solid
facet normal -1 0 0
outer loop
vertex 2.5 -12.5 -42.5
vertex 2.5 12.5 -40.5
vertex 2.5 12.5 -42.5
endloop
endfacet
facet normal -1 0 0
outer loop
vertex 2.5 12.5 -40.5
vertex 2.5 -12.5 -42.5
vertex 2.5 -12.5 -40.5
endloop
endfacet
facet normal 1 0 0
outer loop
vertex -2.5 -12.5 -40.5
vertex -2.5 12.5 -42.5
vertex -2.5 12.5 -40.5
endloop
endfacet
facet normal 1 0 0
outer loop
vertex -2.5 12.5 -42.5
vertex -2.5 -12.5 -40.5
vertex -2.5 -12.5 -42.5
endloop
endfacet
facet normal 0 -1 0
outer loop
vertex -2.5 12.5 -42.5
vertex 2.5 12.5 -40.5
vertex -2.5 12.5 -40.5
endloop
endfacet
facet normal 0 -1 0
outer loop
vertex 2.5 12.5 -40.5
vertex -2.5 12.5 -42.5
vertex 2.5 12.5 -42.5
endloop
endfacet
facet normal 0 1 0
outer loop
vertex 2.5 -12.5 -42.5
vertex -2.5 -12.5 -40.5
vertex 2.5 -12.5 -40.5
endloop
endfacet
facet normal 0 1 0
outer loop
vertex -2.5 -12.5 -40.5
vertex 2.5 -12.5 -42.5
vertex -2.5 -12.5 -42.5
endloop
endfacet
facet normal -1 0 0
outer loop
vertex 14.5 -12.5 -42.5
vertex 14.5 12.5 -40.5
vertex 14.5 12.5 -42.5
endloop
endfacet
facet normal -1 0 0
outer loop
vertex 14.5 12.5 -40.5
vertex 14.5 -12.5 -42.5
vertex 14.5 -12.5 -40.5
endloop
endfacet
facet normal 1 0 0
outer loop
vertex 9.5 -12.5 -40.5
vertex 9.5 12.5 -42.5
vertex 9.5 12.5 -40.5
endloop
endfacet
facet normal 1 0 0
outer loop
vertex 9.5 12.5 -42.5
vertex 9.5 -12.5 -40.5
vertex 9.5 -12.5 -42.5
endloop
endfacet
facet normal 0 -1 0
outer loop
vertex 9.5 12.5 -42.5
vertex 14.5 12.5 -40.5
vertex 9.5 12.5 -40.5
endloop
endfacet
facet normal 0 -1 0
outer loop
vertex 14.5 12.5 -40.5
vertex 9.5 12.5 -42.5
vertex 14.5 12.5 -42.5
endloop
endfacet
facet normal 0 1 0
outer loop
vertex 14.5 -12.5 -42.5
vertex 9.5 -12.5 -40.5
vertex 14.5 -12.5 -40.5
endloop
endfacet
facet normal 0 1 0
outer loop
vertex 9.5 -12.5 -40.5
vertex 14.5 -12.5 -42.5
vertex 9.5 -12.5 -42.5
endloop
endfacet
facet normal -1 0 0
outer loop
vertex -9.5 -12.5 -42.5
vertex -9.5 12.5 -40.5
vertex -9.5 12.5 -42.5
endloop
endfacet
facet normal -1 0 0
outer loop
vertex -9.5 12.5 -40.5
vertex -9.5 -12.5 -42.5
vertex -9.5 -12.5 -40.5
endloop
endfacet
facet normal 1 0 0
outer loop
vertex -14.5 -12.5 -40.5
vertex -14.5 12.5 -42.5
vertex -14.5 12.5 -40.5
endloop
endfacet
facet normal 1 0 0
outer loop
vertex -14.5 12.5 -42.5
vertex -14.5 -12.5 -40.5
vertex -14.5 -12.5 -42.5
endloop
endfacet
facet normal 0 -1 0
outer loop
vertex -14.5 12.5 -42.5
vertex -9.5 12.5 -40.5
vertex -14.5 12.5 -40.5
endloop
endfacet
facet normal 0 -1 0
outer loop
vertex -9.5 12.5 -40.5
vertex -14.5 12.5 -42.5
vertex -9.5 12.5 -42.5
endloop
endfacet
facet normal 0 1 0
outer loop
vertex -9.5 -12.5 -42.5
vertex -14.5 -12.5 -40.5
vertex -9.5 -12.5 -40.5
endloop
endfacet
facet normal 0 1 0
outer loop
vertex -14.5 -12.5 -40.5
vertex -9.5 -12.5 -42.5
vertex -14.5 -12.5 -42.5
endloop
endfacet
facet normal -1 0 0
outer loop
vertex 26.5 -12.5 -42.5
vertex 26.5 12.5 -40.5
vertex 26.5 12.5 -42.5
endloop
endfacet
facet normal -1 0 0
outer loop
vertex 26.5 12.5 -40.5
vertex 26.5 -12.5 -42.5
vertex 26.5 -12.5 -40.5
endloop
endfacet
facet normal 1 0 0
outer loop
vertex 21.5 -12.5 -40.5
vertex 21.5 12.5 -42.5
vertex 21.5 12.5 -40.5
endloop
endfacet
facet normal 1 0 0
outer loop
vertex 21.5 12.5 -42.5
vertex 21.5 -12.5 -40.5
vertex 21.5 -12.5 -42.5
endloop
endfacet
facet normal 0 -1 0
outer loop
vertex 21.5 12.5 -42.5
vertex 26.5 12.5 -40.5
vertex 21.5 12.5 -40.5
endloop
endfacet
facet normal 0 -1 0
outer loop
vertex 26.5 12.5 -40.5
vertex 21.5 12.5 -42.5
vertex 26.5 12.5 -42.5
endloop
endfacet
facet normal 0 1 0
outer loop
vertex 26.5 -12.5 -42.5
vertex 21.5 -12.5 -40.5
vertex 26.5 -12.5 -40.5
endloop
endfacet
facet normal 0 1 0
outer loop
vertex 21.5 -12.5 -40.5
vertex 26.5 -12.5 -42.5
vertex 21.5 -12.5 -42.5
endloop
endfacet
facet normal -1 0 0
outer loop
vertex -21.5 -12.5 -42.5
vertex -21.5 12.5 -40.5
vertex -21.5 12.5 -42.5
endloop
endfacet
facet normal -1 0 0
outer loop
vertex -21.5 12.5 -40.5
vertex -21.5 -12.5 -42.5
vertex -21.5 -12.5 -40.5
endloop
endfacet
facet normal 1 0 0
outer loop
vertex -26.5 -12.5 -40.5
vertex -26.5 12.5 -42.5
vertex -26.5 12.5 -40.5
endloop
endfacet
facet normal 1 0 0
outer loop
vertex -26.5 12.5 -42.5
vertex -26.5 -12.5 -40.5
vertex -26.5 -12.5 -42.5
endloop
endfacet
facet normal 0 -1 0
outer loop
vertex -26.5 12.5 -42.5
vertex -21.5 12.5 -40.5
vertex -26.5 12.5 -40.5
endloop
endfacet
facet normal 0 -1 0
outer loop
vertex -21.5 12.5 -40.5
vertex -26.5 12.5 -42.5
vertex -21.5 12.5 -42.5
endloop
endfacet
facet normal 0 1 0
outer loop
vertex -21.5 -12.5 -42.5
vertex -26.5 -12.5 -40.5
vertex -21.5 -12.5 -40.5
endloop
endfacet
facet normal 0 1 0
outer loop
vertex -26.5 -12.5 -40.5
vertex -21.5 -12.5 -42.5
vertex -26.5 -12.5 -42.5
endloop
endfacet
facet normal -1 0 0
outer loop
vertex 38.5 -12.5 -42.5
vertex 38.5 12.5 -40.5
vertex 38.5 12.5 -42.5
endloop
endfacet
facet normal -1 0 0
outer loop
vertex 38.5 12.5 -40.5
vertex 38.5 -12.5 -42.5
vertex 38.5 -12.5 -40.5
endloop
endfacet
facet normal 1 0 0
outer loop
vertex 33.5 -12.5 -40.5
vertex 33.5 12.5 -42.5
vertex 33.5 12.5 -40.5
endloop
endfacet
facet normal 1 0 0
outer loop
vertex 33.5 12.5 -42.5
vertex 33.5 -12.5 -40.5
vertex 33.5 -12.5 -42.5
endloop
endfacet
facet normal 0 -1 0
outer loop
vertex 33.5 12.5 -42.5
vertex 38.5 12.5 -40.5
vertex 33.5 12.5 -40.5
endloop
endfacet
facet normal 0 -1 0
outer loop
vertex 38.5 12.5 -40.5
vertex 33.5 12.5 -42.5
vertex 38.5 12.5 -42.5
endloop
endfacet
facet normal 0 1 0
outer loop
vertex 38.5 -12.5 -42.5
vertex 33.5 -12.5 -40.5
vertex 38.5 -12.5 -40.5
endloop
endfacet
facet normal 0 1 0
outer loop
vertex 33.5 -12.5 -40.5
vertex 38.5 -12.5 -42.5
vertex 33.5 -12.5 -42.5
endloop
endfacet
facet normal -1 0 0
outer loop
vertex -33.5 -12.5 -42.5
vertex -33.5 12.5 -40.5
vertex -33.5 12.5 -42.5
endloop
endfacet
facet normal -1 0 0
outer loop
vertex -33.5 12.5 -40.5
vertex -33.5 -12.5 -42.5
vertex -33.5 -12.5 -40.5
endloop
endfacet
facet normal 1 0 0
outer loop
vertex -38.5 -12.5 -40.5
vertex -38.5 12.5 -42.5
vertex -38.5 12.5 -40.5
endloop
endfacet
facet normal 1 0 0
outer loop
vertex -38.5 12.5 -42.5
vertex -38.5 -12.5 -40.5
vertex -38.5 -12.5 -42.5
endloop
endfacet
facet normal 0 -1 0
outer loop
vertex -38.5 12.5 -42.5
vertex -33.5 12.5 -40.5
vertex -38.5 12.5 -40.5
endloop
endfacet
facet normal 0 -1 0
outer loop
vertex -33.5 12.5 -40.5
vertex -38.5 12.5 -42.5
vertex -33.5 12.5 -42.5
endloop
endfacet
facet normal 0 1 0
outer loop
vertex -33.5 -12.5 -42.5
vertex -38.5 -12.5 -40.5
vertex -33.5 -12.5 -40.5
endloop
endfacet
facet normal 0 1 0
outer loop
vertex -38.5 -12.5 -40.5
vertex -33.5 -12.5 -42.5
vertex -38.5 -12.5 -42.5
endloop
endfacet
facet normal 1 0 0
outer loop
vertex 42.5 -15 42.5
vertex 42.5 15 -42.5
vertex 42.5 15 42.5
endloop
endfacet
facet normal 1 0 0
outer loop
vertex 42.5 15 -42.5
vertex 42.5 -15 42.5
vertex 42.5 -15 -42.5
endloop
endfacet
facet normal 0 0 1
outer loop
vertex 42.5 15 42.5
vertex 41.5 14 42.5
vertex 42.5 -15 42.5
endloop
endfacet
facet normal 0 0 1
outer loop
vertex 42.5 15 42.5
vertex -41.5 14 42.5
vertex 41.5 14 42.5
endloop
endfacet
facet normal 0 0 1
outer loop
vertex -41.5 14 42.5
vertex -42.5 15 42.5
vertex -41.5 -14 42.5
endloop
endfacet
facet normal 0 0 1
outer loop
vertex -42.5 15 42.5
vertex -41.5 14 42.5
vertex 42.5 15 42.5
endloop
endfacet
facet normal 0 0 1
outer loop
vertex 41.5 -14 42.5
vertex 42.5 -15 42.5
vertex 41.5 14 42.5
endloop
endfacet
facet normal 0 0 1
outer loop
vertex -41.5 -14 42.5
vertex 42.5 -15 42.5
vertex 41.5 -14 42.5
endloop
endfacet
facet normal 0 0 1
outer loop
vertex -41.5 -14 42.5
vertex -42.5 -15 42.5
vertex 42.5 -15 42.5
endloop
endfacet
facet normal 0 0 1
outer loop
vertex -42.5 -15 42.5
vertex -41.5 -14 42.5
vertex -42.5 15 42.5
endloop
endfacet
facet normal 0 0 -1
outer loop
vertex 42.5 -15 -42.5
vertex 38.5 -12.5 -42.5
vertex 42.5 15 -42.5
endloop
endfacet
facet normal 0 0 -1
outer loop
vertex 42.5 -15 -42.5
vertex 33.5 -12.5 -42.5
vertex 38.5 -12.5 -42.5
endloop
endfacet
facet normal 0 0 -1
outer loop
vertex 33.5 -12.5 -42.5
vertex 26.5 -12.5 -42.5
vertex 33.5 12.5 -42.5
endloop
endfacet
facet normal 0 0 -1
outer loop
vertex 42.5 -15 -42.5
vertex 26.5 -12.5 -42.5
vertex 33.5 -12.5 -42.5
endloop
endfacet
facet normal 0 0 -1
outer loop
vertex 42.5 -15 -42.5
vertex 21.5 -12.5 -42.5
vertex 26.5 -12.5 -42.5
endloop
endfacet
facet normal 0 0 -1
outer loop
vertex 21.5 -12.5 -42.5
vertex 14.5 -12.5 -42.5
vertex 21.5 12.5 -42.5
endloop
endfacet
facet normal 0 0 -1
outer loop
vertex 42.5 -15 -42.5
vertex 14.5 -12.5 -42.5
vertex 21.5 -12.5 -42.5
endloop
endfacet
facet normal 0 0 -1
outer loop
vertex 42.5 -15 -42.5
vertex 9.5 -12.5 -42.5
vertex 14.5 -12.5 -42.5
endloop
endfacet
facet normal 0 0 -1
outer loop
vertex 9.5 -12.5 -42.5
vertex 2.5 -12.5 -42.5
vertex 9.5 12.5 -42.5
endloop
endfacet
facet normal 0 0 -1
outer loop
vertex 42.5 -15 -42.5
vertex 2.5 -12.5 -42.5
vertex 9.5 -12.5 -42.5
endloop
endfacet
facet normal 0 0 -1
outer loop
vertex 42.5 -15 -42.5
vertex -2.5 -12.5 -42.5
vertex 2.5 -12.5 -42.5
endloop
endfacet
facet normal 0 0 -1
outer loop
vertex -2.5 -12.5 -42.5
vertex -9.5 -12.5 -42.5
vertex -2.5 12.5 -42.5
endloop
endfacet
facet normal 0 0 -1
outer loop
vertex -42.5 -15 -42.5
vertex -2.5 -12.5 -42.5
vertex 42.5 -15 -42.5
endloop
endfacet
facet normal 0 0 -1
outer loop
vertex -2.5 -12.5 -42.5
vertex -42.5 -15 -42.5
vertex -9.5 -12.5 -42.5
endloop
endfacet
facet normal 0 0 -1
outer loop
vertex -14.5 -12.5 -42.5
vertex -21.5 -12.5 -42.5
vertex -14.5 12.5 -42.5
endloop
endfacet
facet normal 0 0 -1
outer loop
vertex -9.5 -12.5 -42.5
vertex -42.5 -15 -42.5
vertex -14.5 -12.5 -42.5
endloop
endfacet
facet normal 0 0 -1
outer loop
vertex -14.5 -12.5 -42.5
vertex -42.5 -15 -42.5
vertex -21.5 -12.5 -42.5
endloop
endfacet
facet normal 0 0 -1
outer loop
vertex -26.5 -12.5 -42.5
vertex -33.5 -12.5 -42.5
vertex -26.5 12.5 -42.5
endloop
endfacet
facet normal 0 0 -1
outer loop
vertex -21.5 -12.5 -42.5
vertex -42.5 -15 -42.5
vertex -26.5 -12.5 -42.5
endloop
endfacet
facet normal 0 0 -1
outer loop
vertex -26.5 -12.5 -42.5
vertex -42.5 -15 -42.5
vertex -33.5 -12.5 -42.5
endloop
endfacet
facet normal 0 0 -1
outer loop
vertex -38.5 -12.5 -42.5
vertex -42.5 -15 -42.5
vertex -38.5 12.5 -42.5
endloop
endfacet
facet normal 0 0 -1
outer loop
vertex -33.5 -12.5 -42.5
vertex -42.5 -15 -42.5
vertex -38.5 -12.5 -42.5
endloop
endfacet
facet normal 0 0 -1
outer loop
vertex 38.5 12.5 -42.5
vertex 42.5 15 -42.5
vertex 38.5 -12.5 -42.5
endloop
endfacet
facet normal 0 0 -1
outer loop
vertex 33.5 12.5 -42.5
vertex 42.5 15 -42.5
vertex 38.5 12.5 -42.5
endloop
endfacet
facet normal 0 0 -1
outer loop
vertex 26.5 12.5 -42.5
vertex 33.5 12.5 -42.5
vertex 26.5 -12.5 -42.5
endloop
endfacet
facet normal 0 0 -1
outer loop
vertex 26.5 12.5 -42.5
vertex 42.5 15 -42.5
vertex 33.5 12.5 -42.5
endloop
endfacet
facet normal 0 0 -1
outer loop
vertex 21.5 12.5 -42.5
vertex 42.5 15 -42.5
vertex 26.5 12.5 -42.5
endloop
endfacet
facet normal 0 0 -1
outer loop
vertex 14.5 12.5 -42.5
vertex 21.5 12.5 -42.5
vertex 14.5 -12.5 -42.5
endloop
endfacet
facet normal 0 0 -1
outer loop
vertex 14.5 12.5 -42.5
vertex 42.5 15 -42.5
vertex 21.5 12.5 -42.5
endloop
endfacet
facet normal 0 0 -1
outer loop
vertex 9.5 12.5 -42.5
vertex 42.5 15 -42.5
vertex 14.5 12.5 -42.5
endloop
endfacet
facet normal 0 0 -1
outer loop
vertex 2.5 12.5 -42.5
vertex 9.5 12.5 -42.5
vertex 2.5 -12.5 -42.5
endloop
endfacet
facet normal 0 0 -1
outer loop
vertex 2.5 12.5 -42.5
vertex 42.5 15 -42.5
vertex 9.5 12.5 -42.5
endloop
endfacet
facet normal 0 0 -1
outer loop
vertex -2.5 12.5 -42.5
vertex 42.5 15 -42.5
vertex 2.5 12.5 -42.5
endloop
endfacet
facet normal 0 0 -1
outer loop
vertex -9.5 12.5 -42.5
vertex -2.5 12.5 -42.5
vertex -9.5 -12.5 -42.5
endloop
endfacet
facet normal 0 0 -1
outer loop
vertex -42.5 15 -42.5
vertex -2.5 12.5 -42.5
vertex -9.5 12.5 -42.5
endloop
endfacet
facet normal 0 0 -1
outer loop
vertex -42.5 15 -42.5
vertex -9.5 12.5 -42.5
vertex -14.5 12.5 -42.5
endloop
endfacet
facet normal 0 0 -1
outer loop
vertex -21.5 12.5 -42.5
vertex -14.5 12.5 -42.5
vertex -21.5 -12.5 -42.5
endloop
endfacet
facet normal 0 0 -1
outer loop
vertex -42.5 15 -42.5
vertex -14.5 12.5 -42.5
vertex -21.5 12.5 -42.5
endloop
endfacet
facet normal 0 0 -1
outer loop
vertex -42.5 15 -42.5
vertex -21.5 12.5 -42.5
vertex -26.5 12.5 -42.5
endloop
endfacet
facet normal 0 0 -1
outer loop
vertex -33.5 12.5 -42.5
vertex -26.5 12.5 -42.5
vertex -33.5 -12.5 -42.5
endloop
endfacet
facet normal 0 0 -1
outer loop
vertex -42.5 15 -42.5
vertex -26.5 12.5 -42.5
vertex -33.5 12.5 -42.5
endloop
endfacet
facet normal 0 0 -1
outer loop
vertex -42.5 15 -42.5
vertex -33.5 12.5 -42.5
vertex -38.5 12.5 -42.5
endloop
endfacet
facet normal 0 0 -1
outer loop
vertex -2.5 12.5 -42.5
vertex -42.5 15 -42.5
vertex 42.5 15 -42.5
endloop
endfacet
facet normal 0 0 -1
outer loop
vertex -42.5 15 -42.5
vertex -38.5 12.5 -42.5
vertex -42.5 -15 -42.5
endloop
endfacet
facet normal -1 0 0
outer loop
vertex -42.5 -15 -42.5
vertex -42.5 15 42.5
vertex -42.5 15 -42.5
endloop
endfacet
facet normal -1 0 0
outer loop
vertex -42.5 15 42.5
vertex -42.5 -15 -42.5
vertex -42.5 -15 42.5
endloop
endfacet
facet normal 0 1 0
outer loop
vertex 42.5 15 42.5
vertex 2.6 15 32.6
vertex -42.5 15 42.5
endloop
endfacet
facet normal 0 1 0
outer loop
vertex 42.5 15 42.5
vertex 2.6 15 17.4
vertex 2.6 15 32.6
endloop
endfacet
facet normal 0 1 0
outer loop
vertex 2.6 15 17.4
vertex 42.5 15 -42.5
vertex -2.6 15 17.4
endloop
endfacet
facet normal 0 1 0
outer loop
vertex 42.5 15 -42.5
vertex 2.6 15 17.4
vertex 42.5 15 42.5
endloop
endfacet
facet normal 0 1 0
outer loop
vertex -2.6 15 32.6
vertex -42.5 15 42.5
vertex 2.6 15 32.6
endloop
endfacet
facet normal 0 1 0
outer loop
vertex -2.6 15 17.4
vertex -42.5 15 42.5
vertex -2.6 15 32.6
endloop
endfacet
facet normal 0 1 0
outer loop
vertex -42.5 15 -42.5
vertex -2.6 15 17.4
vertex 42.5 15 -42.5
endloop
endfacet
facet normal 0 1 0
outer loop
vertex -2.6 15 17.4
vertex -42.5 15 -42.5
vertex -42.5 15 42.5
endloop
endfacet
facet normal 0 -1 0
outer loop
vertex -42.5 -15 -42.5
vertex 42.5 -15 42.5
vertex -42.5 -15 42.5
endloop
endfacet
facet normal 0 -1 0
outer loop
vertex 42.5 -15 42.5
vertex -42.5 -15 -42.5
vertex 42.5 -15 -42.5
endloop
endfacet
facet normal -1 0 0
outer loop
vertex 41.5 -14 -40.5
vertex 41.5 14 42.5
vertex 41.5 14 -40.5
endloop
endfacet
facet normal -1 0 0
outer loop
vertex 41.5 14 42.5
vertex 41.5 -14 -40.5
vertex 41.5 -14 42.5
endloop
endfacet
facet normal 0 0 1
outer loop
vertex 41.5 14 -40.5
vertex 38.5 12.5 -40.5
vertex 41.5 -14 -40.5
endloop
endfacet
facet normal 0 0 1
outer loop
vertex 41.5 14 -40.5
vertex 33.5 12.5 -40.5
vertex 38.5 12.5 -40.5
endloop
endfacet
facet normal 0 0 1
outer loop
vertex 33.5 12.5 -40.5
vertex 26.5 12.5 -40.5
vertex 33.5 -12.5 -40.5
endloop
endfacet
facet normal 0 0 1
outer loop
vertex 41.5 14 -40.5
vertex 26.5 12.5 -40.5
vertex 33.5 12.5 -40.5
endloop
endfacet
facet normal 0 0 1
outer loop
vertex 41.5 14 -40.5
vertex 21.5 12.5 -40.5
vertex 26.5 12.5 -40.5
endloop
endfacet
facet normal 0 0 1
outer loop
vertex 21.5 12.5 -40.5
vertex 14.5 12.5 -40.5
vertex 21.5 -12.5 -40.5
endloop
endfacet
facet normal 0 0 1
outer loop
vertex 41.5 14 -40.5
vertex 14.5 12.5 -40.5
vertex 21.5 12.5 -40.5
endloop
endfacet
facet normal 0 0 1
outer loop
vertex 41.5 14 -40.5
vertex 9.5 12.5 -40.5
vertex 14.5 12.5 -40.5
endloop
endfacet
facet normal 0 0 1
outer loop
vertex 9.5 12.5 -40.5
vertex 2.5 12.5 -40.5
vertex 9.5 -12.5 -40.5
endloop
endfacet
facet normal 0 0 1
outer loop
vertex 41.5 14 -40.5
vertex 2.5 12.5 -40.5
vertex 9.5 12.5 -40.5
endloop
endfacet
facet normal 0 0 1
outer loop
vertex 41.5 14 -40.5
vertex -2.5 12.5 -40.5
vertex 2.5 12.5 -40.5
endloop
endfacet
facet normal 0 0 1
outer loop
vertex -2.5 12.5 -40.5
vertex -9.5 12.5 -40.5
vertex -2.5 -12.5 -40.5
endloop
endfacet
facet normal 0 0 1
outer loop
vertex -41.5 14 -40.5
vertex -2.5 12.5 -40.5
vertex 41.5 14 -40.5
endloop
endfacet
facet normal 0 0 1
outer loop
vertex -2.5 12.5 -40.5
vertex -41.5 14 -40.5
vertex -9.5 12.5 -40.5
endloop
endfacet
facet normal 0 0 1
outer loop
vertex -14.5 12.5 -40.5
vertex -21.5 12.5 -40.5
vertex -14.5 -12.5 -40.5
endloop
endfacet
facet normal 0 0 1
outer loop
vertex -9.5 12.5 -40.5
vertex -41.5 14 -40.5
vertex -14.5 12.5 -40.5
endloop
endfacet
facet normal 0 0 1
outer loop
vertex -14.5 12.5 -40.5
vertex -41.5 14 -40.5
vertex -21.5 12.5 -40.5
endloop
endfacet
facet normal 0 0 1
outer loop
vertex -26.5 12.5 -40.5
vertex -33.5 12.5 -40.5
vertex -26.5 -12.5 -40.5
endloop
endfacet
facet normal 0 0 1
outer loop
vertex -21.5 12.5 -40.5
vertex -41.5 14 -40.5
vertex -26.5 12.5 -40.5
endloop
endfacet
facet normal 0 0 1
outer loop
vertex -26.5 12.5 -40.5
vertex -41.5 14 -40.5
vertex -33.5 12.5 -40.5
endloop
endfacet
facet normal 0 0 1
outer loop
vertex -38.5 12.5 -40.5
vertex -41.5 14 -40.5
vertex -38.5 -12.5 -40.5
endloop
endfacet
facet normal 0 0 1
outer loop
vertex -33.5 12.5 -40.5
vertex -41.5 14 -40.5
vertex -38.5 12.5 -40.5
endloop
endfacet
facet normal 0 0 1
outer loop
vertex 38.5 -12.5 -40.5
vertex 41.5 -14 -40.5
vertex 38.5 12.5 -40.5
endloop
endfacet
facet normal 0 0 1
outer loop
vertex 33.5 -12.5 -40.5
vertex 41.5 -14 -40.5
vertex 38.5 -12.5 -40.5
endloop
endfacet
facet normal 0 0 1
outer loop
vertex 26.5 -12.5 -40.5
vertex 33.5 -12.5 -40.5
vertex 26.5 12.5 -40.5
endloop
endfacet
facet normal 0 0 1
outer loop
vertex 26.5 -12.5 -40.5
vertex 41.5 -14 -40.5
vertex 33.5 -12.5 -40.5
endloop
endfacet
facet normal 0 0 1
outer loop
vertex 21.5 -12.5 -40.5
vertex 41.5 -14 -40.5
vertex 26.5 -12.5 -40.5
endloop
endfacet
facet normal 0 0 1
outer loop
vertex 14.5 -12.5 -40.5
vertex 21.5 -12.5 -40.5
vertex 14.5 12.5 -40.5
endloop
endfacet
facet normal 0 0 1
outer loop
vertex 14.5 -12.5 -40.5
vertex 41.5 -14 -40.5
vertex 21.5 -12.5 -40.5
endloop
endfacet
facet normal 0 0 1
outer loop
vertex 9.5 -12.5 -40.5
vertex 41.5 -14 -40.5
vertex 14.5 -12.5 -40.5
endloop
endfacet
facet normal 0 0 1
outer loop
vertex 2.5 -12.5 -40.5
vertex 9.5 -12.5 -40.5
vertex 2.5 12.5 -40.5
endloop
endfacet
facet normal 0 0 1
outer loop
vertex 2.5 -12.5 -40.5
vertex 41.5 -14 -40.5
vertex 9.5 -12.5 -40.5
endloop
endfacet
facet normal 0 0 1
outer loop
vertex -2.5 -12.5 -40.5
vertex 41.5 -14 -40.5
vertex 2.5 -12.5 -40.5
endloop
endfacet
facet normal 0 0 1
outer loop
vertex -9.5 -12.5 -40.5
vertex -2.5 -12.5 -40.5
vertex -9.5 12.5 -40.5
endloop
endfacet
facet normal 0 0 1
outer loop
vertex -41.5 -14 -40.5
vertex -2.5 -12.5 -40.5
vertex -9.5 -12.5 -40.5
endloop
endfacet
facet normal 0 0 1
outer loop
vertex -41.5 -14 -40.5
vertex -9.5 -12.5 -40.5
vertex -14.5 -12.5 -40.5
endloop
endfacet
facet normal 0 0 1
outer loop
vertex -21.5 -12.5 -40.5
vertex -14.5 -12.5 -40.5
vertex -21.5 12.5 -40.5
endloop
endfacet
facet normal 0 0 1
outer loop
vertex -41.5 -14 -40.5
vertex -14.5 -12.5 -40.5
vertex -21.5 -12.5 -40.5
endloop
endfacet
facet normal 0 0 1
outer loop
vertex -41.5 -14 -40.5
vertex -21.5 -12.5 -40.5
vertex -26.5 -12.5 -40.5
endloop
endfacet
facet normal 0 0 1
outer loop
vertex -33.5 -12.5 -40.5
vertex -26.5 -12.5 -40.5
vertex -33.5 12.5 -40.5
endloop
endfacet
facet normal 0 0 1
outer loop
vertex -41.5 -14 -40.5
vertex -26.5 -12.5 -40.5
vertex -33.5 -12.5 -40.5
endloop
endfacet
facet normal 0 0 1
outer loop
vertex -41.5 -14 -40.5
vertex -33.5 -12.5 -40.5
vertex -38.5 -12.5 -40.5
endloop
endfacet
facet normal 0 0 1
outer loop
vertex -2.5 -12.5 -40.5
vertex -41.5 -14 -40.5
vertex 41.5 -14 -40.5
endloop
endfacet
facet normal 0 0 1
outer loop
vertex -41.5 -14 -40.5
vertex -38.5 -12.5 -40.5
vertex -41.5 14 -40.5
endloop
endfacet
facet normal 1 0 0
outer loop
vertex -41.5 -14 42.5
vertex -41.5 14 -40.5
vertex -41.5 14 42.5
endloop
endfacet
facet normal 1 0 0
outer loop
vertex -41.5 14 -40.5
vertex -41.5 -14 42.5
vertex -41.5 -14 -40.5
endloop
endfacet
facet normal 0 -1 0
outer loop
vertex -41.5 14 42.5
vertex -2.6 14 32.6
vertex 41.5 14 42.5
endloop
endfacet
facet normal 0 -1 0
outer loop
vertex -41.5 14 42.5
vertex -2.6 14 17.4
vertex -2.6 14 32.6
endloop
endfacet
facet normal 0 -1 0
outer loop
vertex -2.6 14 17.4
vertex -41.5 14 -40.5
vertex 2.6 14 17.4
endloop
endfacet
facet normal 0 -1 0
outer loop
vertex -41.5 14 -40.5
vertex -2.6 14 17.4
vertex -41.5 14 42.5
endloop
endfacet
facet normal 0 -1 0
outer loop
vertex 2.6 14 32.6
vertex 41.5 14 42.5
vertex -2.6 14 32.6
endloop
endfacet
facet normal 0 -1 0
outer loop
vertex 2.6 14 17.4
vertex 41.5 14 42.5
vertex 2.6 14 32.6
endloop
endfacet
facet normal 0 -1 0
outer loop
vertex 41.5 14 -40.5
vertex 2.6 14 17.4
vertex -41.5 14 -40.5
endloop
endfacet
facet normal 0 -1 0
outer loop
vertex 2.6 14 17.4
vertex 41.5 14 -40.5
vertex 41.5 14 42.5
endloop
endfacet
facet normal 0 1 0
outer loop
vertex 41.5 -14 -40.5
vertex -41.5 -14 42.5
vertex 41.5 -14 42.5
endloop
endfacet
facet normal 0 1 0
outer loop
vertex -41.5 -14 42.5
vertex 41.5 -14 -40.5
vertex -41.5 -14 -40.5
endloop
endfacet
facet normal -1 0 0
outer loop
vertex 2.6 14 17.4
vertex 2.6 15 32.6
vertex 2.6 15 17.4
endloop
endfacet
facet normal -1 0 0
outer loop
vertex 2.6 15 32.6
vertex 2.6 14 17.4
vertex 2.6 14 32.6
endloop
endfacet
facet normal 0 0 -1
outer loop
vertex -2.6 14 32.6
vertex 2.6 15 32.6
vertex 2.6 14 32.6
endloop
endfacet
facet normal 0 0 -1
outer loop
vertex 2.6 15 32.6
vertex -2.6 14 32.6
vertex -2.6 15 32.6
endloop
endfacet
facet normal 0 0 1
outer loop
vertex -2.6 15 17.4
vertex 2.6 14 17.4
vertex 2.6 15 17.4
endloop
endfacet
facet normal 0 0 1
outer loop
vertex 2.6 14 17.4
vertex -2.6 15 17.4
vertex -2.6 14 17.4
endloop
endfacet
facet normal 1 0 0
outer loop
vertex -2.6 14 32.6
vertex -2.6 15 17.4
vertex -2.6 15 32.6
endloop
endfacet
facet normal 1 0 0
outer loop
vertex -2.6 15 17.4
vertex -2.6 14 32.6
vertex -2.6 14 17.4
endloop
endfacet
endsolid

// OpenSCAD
cube_bowl();

module cube_bowl() {
    difference(){
        cube([85,30,85], center=true);
        translate([0,0,2]) cube([85-2,30-2,85-2+2], center=true);
        for(i=[0:12:80/2]) {
            translate([i,0,0]) cube([5,25,100], center=true);
            translate([-i,0,0]) cube([5,25,100], center=true);
        }
        translate([0,15,50/2]) cube([5+0.2,10,15+0.2], center=true);
    }
}

// rotate([0,90,0]) hook(l=100);

module hook(l=100) {
    rotate([-90,0,0]) linear_extrude(l) translate([-2.5,-5,0]) square(5);
    translate([0,l,0]) linear_extrude(20) square(5, center=true);
    translate([0,l-10,20-5]) rotate([-90,0,0]) linear_extrude(10) translate([-2.5,-5,0]) square(5);

    translate([0,0,5]) rotate([0,180,0]) linear_extrude(10+1+0.2) square(5, center=true);
    translate([0,0,-(5+1+0.2)]) rotate([-90,0,0]) linear_extrude(10) translate([-2.5,-5,0]) square(5);
}
